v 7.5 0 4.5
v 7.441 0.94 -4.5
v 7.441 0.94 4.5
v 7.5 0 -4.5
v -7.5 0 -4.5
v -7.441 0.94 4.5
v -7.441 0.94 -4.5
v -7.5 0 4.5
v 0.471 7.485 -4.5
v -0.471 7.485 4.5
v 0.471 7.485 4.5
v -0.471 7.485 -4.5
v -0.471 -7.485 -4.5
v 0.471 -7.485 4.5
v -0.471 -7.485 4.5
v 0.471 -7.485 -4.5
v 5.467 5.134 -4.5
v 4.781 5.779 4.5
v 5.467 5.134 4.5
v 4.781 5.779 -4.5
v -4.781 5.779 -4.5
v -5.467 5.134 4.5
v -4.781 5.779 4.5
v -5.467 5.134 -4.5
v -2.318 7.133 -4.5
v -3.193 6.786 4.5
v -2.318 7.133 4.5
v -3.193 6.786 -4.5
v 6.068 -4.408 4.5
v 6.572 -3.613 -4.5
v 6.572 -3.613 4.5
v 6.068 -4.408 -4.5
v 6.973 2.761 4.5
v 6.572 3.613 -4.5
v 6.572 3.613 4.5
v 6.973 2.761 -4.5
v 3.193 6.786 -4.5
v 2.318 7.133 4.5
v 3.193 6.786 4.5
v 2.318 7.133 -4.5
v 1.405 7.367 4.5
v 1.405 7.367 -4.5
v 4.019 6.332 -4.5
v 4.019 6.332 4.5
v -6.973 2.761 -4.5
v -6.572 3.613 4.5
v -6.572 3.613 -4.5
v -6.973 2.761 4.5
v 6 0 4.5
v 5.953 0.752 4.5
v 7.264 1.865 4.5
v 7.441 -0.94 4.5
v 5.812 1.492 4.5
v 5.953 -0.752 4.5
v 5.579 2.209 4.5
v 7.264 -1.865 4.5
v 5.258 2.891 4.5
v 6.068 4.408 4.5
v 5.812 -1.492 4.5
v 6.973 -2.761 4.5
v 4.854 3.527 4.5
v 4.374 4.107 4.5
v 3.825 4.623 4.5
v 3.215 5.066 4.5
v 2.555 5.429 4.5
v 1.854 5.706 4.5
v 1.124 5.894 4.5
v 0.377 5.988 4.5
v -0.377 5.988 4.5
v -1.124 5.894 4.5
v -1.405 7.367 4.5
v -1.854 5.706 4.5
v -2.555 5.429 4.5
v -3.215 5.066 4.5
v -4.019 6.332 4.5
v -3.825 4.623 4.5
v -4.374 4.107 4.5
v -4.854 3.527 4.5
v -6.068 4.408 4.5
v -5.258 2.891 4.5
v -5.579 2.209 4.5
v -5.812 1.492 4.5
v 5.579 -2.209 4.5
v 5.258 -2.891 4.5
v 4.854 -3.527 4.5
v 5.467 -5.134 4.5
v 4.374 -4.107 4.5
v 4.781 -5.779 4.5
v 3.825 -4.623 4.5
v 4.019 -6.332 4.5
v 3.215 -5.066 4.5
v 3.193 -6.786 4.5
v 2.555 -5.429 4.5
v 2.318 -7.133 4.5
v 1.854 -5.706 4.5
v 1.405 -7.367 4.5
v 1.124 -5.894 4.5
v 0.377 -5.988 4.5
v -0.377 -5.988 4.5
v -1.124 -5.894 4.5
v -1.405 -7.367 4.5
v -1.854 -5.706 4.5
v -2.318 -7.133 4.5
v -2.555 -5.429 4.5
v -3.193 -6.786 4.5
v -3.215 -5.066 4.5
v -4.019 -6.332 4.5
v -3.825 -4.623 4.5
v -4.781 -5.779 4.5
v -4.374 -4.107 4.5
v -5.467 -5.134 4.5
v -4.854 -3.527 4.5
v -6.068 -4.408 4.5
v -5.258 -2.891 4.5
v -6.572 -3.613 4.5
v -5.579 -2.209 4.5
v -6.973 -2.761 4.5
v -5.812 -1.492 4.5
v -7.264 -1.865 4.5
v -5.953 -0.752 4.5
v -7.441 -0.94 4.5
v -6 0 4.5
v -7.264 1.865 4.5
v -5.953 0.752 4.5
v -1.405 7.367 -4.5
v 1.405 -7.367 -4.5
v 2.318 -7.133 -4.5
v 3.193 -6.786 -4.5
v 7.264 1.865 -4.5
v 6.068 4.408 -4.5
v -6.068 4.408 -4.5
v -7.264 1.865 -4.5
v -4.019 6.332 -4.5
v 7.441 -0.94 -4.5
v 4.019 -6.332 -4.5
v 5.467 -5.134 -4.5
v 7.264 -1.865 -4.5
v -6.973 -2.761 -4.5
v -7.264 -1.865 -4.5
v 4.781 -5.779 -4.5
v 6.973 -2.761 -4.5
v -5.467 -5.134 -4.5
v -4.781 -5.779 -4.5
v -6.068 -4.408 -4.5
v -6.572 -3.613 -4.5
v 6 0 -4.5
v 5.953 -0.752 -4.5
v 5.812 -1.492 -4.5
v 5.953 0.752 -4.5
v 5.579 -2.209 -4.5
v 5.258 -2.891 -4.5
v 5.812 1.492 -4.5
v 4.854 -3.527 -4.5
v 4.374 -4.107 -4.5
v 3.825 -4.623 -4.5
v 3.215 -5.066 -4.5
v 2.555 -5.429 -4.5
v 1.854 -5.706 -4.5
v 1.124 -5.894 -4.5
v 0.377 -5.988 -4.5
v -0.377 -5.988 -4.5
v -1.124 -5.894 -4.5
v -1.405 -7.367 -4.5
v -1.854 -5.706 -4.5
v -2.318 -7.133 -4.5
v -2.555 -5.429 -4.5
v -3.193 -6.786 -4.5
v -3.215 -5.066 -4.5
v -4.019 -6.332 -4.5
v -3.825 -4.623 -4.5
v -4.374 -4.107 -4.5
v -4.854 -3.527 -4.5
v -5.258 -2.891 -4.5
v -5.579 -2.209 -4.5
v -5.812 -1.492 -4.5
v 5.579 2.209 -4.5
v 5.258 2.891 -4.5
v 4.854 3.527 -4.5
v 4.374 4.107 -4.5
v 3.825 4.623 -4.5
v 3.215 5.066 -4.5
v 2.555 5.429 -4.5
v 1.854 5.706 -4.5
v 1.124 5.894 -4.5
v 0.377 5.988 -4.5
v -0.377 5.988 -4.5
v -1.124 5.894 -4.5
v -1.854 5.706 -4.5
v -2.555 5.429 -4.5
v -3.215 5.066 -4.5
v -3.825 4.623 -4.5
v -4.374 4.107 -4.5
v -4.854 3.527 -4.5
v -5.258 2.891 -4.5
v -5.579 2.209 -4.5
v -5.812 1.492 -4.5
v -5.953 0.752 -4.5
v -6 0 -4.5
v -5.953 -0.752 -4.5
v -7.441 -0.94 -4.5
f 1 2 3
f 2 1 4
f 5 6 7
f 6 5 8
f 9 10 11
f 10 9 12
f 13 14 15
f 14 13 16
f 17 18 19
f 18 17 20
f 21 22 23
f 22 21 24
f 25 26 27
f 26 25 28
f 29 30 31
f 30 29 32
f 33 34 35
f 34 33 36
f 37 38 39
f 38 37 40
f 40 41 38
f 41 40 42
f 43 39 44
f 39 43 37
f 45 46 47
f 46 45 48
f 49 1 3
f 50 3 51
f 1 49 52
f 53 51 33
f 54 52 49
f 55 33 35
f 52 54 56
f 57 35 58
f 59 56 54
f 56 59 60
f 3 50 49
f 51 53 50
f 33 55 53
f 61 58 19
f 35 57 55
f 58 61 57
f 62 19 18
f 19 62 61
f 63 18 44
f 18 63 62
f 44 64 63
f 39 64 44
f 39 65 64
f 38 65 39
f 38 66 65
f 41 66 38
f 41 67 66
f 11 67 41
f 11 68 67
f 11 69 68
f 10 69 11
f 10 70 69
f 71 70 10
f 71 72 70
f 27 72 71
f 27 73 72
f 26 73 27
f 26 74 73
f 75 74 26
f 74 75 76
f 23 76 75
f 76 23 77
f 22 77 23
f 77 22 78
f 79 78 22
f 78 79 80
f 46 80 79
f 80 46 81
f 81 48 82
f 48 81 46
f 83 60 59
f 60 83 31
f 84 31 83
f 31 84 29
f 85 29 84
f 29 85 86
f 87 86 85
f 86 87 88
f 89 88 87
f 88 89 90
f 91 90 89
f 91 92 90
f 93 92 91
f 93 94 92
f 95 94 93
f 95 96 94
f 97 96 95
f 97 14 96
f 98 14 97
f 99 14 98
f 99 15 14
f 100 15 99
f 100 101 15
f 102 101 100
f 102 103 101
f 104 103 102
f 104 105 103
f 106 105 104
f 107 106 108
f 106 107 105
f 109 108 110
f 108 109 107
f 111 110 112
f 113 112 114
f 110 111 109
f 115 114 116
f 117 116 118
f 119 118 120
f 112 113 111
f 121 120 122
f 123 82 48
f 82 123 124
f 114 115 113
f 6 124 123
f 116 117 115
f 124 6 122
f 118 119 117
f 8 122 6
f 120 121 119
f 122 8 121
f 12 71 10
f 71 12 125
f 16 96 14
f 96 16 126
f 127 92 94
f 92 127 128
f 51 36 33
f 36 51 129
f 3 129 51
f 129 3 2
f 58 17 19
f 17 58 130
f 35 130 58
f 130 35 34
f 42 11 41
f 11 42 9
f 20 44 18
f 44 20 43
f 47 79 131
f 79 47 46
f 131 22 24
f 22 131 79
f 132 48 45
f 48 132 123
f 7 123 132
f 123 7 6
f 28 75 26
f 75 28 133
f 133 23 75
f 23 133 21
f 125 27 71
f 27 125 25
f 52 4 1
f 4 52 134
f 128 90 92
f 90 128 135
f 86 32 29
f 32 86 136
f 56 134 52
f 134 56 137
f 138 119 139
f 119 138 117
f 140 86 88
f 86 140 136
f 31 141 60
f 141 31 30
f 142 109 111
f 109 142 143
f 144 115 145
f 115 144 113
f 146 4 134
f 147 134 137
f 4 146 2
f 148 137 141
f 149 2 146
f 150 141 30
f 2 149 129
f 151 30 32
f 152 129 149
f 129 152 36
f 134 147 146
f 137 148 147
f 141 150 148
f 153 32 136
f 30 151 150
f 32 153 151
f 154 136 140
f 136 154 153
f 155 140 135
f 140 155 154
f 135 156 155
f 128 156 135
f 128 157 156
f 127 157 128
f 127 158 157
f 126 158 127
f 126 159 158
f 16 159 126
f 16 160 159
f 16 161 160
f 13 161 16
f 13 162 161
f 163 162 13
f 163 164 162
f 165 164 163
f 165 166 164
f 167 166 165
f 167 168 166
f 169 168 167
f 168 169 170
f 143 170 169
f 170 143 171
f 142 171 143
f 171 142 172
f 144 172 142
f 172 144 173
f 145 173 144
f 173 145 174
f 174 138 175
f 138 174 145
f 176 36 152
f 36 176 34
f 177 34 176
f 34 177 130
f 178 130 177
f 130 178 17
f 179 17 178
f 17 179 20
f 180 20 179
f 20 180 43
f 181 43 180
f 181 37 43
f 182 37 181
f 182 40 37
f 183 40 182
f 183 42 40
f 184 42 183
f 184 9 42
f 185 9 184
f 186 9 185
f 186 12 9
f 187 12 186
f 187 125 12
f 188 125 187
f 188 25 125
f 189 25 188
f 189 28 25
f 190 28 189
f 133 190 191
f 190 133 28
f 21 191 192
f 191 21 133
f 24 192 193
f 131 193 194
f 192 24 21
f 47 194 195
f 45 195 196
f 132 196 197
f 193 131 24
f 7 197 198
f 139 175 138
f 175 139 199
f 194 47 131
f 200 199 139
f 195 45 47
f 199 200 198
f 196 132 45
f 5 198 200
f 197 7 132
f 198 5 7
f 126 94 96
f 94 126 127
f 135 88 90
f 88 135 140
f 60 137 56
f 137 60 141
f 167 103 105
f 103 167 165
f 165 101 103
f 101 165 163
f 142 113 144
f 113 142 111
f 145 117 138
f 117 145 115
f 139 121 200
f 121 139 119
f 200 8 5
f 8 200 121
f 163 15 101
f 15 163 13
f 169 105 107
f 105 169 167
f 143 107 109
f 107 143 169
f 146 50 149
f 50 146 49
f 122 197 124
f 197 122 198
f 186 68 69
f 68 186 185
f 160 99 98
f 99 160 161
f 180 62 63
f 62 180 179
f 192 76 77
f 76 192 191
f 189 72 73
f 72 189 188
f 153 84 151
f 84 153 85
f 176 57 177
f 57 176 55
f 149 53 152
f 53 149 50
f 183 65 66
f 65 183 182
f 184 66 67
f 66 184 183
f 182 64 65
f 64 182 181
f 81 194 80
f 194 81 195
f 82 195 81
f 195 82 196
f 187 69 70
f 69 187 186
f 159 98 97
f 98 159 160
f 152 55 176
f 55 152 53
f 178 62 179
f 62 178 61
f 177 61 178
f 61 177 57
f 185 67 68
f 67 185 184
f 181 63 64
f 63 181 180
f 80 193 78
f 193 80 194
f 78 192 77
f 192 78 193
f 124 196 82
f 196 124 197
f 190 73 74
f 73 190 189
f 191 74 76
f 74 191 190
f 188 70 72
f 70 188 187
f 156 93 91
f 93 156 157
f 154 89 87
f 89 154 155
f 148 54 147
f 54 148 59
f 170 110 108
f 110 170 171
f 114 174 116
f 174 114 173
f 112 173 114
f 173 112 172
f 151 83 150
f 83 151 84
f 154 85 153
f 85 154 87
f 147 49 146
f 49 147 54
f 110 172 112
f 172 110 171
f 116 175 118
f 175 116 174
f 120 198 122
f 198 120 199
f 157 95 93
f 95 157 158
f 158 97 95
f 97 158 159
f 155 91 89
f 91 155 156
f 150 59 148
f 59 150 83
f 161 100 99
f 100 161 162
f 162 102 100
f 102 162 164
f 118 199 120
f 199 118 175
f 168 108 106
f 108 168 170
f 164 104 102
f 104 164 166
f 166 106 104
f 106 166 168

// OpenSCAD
$fn = 50;


difference() {
	union() {
		translate(v = [0, 0, -4.5000000000]) {
			cylinder(h = 9, r = 7.5000000000);
		}
	}
	union() {
		translate(v = [0, 0, -100.0000000000]) {
			cylinder(h = 200, r = 6);
		}
	}
}
